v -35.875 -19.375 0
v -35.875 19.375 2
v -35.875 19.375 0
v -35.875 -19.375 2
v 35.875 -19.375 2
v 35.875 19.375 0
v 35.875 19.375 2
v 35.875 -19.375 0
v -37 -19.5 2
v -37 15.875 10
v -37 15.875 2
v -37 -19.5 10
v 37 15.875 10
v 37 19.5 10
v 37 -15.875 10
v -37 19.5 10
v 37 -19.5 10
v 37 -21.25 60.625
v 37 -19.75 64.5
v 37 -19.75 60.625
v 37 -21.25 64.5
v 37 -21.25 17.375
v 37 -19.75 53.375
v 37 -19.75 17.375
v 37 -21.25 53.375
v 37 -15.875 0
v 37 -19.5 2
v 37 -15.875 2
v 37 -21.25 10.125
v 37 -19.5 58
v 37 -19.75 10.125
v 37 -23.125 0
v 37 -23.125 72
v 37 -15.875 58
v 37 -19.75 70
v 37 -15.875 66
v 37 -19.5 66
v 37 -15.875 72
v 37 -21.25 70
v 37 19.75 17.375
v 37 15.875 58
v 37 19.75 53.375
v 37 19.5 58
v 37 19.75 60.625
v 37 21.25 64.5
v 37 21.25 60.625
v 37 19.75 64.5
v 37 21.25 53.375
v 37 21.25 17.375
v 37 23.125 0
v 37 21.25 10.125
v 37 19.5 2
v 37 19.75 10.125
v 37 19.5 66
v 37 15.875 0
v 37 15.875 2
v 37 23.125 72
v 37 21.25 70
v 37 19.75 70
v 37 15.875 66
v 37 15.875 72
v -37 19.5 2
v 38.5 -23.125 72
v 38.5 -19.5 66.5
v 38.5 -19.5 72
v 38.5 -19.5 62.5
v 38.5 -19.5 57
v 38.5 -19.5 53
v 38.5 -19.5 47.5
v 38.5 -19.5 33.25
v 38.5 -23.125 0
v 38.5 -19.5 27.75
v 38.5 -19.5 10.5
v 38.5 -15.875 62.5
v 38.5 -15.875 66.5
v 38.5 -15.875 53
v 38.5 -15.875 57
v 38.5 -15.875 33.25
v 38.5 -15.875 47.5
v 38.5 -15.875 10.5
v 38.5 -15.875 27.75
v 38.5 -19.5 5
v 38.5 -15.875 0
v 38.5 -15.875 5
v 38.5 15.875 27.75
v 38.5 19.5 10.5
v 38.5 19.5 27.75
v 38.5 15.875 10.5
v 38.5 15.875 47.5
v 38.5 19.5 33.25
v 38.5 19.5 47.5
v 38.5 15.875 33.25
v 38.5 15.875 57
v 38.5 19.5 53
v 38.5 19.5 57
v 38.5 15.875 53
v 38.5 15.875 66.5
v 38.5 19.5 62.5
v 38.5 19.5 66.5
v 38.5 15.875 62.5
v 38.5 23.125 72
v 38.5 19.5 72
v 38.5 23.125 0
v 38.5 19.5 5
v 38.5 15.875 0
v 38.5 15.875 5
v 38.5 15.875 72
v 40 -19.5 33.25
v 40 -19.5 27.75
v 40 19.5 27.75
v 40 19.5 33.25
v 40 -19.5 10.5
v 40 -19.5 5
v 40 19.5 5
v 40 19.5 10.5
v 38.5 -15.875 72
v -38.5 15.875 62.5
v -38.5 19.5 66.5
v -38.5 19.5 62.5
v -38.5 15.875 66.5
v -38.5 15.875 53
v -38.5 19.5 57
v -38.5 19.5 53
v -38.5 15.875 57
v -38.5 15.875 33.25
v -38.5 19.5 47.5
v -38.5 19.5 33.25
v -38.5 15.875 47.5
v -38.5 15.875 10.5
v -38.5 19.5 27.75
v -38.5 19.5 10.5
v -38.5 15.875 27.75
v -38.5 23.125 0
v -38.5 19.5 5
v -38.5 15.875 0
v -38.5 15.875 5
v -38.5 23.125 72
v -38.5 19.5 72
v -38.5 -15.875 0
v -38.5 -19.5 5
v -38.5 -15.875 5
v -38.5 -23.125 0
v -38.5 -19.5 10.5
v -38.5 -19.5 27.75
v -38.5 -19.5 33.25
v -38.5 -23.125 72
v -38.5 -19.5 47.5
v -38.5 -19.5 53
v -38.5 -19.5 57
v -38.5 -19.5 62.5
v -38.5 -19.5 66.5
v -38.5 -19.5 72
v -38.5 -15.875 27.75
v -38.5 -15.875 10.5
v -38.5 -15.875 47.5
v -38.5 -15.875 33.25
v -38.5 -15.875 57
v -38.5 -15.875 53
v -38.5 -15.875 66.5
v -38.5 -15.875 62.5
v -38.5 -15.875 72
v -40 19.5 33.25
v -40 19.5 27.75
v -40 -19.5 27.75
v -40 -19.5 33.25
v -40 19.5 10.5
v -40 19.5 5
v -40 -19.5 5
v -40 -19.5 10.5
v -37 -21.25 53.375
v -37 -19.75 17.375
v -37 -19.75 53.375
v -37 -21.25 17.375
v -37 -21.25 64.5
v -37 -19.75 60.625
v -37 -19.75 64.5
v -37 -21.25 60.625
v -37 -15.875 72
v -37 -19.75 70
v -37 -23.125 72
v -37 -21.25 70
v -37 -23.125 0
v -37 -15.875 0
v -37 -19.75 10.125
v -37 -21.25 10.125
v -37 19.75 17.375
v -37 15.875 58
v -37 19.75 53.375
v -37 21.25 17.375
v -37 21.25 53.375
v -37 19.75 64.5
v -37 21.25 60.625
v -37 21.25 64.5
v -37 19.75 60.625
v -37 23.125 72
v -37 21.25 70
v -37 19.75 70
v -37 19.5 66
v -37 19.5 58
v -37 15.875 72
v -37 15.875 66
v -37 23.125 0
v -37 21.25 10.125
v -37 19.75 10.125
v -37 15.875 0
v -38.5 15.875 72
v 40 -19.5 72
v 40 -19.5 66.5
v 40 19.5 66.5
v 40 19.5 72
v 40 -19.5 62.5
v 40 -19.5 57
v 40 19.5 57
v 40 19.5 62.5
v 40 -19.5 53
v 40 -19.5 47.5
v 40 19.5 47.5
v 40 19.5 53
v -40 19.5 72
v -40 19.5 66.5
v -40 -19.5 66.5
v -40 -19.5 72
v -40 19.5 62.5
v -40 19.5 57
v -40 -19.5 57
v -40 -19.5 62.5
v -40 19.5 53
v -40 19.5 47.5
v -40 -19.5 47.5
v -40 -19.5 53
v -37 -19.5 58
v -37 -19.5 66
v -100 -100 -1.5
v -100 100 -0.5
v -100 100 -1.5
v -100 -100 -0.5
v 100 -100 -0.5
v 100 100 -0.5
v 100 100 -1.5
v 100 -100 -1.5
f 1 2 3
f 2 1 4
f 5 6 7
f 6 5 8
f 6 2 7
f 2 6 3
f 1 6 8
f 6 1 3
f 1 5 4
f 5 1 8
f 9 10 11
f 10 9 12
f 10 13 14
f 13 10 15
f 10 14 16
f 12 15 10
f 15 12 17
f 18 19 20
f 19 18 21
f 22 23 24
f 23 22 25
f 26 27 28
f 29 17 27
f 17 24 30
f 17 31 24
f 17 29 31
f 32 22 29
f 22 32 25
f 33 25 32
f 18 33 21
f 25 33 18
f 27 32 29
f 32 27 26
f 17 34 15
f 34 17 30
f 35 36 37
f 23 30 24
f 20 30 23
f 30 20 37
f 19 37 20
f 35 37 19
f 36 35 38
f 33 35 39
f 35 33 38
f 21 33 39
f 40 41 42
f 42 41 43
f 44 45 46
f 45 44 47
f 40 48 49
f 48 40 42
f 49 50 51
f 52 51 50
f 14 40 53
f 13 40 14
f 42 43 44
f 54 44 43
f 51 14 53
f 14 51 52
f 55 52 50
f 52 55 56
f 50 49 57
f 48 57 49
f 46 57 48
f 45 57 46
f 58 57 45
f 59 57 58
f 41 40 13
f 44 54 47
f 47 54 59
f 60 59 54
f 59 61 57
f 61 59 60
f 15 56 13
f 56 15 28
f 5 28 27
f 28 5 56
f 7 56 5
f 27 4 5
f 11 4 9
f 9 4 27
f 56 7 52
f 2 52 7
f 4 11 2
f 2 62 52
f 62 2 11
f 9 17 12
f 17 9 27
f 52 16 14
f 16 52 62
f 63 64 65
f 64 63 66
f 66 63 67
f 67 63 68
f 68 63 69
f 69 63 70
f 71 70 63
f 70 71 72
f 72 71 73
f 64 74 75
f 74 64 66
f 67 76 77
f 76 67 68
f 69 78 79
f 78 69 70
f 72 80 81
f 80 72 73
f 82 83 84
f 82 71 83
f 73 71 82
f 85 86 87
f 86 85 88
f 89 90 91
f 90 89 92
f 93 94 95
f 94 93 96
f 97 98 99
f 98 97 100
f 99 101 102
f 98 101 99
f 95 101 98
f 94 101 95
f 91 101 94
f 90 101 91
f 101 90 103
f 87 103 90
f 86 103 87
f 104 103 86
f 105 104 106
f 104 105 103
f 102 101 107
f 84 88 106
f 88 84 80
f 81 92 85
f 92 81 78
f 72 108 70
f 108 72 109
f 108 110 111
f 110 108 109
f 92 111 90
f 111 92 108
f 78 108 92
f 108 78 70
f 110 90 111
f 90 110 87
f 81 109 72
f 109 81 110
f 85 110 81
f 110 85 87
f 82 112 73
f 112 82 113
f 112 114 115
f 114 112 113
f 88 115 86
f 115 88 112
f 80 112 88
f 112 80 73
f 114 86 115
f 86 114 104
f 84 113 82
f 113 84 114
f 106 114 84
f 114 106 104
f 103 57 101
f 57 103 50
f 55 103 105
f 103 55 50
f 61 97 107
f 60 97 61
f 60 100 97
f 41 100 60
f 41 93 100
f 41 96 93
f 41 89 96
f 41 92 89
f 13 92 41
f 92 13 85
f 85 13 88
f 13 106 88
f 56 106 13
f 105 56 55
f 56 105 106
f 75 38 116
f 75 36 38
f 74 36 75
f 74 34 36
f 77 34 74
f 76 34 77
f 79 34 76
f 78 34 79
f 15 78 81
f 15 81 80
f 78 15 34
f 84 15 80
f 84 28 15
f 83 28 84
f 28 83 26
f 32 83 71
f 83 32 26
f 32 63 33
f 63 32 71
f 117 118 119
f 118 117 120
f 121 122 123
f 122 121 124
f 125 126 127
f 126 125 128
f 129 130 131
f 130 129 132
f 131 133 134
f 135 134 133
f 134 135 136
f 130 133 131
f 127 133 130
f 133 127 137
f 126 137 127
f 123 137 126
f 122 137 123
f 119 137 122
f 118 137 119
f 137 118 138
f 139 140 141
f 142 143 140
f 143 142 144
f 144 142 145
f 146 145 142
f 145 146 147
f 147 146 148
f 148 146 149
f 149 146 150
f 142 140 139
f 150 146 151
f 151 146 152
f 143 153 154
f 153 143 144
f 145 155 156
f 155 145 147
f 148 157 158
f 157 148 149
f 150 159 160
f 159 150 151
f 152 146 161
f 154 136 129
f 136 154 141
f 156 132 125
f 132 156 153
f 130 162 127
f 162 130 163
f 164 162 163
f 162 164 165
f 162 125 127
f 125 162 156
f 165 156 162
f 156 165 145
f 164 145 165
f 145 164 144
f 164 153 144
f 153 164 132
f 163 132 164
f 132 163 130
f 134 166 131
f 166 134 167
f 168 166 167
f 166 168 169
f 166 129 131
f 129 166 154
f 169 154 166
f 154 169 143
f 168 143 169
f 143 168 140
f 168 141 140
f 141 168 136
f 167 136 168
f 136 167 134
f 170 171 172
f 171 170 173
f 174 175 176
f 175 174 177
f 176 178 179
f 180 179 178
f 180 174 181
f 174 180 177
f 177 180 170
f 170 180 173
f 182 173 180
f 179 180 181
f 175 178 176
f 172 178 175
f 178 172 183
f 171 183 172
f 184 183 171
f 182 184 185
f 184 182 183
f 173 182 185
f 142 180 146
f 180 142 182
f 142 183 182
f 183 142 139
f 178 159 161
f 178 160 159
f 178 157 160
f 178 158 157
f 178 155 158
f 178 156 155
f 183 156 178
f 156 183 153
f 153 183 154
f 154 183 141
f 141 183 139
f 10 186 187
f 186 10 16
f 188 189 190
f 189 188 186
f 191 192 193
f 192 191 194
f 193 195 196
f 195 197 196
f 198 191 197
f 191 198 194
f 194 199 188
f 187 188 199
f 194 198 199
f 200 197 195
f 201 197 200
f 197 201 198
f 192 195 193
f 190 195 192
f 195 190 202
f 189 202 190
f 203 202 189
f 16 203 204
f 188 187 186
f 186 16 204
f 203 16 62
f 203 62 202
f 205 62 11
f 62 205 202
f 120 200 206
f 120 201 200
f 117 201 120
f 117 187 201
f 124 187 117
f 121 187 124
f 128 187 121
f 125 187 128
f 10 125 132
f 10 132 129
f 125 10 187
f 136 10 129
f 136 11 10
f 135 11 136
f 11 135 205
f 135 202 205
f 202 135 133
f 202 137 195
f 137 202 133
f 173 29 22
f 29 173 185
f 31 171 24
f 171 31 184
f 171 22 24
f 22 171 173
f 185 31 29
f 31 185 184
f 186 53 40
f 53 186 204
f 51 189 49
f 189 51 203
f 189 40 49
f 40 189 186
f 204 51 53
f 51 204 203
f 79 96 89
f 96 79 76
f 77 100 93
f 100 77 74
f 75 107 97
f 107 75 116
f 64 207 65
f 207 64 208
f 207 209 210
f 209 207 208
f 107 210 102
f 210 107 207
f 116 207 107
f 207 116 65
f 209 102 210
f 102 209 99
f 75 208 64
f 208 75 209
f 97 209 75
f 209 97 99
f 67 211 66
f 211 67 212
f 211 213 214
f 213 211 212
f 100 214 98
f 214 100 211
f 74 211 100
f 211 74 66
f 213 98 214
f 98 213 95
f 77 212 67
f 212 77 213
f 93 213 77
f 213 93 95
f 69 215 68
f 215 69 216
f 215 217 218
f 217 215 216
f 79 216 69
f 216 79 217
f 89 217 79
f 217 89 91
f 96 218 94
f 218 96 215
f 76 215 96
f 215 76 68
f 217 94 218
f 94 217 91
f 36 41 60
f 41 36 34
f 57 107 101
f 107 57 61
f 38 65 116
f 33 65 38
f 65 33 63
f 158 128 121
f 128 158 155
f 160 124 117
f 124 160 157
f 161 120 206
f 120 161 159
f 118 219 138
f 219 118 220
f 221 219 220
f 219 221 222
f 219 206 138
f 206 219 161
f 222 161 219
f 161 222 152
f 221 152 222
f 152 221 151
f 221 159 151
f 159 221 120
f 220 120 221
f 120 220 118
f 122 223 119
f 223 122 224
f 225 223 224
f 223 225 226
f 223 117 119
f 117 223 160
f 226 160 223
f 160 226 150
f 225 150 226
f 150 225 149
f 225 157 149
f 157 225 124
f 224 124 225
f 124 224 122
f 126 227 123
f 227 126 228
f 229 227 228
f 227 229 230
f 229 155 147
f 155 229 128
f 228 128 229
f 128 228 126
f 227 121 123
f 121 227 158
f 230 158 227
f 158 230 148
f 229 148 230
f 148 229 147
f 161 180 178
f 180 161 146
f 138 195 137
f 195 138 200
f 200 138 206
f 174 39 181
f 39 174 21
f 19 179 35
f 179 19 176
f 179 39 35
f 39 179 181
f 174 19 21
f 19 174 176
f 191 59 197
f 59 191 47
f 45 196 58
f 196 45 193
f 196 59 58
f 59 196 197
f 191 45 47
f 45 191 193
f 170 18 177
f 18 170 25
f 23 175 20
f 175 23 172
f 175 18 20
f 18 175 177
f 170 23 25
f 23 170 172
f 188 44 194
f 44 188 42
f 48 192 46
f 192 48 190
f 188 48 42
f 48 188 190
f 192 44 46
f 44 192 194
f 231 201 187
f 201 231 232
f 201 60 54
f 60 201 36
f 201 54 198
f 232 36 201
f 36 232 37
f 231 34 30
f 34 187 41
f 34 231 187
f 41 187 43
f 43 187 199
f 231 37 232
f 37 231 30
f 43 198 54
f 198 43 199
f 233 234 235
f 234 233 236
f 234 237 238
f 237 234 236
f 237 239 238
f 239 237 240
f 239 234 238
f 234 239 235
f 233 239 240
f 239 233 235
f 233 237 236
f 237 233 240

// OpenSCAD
union () {
  translate ([0, 0, -1]) {
    color ([1, 0, 1, ]) {
      cube ([200, 200, 1], center=true);
    }
  }
  union () {
    translate ([0, 0, 2]) {
      color ([0, 1, 1, ]) {
        cube ([71.75, 38.75, 4], center=true);
      }
    }
    translate ([0, 0, 6]) {
      color ([1, 1, 1, ]) {
        cube ([74, 39, 8], center=true);
      }
    }
  }
  union () {
    translate ([37.75, 0, 0]) {
      union () {
        translate ([1.5, 0, 30.5]) {
          rotate ([90.0,0.0,0.0]) {
            color ([0, 1, 0, ]) {
              cube ([1.5, 5.5, 39], center=true);
            }
          }
        }
        translate ([1.5, 0, 7.75]) {
          rotate ([90.0,0.0,0.0]) {
            color ([0, 1, 0, ]) {
              cube ([1.5, 5.5, 39], center=true);
            }
          }
        }
        translate ([0, 39/2, 18]) {
          color ([0, 0, 1, ]) {
            cube ([1.5, 7.25, 36], center=true);
          }
        }
        translate ([0, -39/2, 18]) {
          color ([0, 0, 1, ]) {
            cube ([1.5, 7.25, 36], center=true);
          }
        }
      }
    }
    translate ([-37.75, 0, 0]) {
      rotate ([0.0,0.0,180.0]) {
        union () {
          translate ([1.5, 0, 30.5]) {
            rotate ([90.0,0.0,0.0]) {
              color ([0, 1, 0, ]) {
                cube ([1.5, 5.5, 39], center=true);
              }
            }
          }
          translate ([1.5, 0, 7.75]) {
            rotate ([90.0,0.0,0.0]) {
              color ([0, 1, 0, ]) {
                cube ([1.5, 5.5, 39], center=true);
              }
            }
          }
          translate ([0, 39/2, 18]) {
            color ([0, 0, 1, ]) {
              cube ([1.5, 7.25, 36], center=true);
            }
          }
          translate ([0, -39/2, 18]) {
            color ([0, 0, 1, ]) {
              cube ([1.5, 7.25, 36], center=true);
            }
          }
        }
      }
    }
    translate ([0, -41/2, 13.75]) {
      rotate ([90.0,0.0,90.0]) {
        color ([0, 0, 1, ]) {
          cube ([1.5, 7.25, 76], center=true);
        }
      }
    }
    translate ([0, 41/2, 13.75]) {
      rotate ([90.0,0.0,90.0]) {
        color ([0, 0, 1, ]) {
          cube ([1.5, 7.25, 76], center=true);
        }
      }
    }
  }
  translate ([0, 0, 36]) {
    union () {
      translate ([37.75, 0, 0]) {
        union () {
          translate ([1.5, 0, 33.25]) {
            rotate ([90.0,0.0,0.0]) {
              color ([0, 1, 0, ]) {
                cube ([1.5, 5.5, 39], center=true);
              }
            }
          }
          translate ([1.5, 0, 23.75]) {
            rotate ([90.0,0.0,0.0]) {
              color ([0, 1, 0, ]) {
                cube ([1.5, 5.5, 39], center=true);
              }
            }
          }
          translate ([1.5, 0, 14.25]) {
            rotate ([90.0,0.0,0.0]) {
              color ([0, 1, 0, ]) {
                cube ([1.5, 5.5, 39], center=true);
              }
            }
          }
          translate ([0, 39/2, 18]) {
            color ([0, 0, 1, ]) {
              cube ([1.5, 7.25, 36], center=true);
            }
          }
          translate ([0, -39/2, 18]) {
            color ([0, 0, 1, ]) {
              cube ([1.5, 7.25, 36], center=true);
            }
          }
        }
      }
      translate ([-37.75, 0, 0]) {
        rotate ([0.0,0.0,180.0]) {
          union () {
            translate ([1.5, 0, 33.25]) {
              rotate ([90.0,0.0,0.0]) {
                color ([0, 1, 0, ]) {
                  cube ([1.5, 5.5, 39], center=true);
                }
              }
            }
            translate ([1.5, 0, 23.75]) {
              rotate ([90.0,0.0,0.0]) {
                color ([0, 1, 0, ]) {
                  cube ([1.5, 5.5, 39], center=true);
                }
              }
            }
            translate ([1.5, 0, 14.25]) {
              rotate ([90.0,0.0,0.0]) {
                color ([0, 1, 0, ]) {
                  cube ([1.5, 5.5, 39], center=true);
                }
              }
            }
            translate ([0, 39/2, 18]) {
              color ([0, 0, 1, ]) {
                cube ([1.5, 7.25, 36], center=true);
              }
            }
            translate ([0, -39/2, 18]) {
              color ([0, 0, 1, ]) {
                cube ([1.5, 7.25, 36], center=true);
              }
            }
          }
        }
      }
      translate ([0, -41/2, 31.25]) {
        rotate ([90.0,0.0,90.0]) {
          color ([0, 1, 0, ]) {
            cube ([1.5, 5.5, 76], center=true);
          }
        }
      }
      translate ([0, 41/2, 31.25]) {
        rotate ([90.0,0.0,90.0]) {
          color ([0, 1, 0, ]) {
            cube ([1.5, 5.5, 76], center=true);
          }
        }
      }
      translate ([0, -41/2, 21.0]) {
        rotate ([90.0,0.0,90.0]) {
          color ([0, 0, 1, ]) {
            cube ([1.5, 7.25, 76], center=true);
          }
        }
      }
      translate ([0, 41/2, 21.0]) {
        rotate ([90.0,0.0,90.0]) {
          color ([0, 0, 1, ]) {
            cube ([1.5, 7.25, 76], center=true);
          }
        }
      }
      translate ([0, 0, 26.0]) {
        color ([1, 1, 1, ]) {
          cube ([74, 39, 8], center=true);
        }
      }
    }
  }
}
